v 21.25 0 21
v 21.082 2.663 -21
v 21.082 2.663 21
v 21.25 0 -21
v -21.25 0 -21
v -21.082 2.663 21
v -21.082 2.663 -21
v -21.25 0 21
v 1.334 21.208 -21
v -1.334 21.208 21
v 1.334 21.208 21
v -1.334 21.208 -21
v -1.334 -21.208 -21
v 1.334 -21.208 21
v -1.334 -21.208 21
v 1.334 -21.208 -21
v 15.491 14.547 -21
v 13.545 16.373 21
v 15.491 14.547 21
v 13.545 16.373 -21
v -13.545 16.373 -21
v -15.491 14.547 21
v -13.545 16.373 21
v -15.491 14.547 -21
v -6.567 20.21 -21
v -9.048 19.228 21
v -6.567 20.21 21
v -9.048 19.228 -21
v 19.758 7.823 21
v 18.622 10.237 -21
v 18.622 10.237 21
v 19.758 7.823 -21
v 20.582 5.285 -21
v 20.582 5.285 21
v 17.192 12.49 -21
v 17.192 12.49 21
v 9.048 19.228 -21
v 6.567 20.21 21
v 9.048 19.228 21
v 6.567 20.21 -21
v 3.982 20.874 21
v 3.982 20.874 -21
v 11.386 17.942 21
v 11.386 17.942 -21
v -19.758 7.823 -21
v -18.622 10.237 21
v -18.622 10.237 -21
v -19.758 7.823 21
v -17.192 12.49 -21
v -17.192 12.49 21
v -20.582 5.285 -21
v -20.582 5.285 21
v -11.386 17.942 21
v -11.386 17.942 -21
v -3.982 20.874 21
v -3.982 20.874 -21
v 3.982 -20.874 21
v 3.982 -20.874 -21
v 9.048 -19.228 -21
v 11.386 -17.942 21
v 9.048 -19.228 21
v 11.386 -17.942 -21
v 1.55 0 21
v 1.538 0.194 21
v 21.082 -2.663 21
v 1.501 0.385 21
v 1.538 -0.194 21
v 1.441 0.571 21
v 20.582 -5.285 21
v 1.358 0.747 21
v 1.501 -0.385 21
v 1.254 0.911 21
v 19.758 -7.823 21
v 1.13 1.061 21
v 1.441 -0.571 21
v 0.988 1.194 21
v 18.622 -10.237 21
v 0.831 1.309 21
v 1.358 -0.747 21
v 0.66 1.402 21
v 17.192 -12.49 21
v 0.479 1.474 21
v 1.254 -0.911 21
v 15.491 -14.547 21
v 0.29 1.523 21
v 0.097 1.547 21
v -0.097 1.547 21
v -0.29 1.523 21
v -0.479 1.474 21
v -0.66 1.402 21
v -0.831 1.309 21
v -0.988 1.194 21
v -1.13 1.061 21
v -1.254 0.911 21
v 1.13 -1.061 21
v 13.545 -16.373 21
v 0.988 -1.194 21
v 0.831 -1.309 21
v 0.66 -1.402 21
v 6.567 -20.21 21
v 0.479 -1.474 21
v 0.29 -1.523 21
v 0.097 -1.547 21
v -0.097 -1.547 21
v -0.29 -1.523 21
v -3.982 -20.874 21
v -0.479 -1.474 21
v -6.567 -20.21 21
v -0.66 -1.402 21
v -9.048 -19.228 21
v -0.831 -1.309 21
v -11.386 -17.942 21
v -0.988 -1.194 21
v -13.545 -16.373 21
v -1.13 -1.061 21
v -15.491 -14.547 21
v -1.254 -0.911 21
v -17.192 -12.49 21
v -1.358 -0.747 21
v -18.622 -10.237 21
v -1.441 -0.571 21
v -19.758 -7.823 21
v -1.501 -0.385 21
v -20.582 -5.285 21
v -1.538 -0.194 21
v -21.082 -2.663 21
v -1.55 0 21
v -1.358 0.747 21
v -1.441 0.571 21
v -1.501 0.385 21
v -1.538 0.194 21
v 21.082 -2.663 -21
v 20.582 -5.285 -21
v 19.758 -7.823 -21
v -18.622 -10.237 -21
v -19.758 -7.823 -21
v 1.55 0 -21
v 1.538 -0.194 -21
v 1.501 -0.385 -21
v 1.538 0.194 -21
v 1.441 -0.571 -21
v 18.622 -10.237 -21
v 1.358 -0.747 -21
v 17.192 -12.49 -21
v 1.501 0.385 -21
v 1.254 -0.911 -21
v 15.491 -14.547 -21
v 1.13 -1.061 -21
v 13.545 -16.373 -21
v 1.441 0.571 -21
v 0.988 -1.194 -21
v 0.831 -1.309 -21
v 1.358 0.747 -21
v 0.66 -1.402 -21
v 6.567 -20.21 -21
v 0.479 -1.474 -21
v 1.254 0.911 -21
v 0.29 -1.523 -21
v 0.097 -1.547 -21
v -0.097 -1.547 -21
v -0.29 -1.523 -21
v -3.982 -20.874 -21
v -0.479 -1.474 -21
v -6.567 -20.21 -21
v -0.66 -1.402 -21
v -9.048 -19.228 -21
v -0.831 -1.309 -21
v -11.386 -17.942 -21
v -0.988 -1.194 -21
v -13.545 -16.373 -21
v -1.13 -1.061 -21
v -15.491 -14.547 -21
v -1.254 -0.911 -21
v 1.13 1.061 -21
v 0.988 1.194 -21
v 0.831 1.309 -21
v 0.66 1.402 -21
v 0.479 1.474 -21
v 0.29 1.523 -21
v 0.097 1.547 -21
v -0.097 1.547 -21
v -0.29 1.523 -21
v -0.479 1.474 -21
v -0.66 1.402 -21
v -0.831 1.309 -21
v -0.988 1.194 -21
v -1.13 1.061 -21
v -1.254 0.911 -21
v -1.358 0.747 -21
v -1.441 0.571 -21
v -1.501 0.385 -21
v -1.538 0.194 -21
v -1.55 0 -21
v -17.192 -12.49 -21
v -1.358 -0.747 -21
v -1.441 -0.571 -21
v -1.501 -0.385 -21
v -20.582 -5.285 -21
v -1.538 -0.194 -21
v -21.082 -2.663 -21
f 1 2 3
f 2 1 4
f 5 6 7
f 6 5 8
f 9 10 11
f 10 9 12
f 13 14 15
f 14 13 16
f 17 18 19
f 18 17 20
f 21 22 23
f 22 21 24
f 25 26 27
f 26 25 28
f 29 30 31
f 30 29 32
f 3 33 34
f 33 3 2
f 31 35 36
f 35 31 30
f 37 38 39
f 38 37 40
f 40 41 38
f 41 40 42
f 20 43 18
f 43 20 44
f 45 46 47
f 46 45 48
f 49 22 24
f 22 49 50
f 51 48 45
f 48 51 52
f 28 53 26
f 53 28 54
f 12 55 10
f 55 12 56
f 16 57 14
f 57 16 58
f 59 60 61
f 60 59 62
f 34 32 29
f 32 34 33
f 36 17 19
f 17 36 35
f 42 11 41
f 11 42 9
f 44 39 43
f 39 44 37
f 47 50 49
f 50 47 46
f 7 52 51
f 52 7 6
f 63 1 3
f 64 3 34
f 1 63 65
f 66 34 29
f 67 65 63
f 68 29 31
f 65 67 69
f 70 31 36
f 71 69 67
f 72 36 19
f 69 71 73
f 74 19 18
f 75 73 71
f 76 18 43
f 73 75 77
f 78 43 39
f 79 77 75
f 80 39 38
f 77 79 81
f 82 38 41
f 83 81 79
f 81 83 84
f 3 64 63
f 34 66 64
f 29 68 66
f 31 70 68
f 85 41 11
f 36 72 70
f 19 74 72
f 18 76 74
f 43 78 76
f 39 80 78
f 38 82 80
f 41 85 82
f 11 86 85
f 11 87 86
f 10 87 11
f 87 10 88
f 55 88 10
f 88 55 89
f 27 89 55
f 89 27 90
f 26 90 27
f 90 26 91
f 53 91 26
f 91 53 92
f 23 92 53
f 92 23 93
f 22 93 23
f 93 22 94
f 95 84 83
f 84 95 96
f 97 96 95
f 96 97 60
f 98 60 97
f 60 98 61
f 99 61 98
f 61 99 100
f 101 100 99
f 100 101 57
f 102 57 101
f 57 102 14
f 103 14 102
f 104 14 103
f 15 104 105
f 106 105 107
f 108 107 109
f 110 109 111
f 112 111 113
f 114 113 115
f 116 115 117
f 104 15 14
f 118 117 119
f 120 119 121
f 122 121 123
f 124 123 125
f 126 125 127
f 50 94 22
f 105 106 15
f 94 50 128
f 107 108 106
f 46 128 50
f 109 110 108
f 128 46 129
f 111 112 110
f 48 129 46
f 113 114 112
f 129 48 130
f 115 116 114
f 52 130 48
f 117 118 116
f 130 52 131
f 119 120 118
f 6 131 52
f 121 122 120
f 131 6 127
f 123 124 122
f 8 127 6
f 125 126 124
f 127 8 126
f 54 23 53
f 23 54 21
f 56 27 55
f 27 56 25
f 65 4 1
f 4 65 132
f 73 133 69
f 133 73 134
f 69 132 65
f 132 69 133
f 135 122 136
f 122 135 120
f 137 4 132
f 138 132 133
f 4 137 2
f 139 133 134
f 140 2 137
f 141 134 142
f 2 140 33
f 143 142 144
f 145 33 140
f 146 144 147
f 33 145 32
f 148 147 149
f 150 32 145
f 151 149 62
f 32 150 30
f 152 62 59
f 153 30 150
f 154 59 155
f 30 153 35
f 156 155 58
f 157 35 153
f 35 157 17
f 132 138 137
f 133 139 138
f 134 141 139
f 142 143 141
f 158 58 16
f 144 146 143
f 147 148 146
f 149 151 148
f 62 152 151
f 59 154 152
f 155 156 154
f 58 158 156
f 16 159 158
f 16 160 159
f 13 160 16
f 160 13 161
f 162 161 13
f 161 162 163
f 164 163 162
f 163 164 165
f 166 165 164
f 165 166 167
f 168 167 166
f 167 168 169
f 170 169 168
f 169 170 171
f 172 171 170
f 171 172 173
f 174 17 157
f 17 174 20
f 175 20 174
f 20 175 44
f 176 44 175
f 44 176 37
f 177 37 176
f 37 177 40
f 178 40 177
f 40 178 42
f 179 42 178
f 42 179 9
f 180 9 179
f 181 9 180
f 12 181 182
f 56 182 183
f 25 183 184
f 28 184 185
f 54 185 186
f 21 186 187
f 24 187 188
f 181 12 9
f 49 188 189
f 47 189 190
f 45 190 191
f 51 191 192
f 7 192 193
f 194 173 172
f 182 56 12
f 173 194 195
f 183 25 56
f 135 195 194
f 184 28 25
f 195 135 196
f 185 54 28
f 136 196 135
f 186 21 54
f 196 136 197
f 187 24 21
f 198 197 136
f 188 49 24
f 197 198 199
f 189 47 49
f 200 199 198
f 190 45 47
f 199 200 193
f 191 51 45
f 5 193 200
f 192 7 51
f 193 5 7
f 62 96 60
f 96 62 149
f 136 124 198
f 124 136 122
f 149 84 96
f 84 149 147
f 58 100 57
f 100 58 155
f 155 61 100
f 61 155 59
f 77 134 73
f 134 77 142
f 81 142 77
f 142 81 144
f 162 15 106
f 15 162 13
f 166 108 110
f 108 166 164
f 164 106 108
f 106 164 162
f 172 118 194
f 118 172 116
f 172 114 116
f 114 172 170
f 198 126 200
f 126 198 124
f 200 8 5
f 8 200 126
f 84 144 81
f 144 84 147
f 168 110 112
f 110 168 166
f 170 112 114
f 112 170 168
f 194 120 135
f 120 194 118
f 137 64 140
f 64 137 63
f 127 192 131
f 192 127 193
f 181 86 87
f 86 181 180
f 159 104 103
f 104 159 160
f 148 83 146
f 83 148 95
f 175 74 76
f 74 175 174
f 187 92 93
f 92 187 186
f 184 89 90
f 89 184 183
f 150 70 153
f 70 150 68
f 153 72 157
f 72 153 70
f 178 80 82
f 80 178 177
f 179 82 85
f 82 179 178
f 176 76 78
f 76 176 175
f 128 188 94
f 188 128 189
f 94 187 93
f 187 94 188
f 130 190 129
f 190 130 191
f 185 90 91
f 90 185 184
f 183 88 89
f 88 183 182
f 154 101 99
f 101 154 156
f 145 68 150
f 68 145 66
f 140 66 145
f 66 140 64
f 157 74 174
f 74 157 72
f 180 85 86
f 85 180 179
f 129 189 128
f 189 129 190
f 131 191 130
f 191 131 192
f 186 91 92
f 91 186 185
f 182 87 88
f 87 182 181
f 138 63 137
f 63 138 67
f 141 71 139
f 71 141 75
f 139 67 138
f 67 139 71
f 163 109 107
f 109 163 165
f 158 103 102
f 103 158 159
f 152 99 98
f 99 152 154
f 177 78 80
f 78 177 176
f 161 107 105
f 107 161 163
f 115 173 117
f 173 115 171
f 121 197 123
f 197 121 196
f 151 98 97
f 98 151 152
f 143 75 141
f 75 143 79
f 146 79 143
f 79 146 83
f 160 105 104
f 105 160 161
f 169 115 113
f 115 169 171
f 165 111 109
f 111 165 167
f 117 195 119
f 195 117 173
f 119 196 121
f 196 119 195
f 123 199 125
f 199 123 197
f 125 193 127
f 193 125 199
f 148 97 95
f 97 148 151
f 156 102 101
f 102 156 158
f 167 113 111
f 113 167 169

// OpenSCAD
$fn = 50;


difference() {
	union() {
		translate(v = [0, 0, -21.0000000000]) {
			cylinder(h = 42, r = 21.2500000000);
		}
	}
	union() {
		translate(v = [0, 0, -100.0000000000]) {
			cylinder(h = 200, r = 1.5500000000);
		}
	}
}
